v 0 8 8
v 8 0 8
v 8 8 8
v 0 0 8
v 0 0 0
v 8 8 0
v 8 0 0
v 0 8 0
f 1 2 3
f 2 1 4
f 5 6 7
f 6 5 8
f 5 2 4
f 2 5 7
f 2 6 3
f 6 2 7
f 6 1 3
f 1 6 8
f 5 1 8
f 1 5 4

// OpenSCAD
// str() prints six significant digits, so str(1/3) is "0.333333" (8 chars).
// Full f64 precision would make this cube 18 mm instead of 8.
cube(len(str(1 / 3)));
